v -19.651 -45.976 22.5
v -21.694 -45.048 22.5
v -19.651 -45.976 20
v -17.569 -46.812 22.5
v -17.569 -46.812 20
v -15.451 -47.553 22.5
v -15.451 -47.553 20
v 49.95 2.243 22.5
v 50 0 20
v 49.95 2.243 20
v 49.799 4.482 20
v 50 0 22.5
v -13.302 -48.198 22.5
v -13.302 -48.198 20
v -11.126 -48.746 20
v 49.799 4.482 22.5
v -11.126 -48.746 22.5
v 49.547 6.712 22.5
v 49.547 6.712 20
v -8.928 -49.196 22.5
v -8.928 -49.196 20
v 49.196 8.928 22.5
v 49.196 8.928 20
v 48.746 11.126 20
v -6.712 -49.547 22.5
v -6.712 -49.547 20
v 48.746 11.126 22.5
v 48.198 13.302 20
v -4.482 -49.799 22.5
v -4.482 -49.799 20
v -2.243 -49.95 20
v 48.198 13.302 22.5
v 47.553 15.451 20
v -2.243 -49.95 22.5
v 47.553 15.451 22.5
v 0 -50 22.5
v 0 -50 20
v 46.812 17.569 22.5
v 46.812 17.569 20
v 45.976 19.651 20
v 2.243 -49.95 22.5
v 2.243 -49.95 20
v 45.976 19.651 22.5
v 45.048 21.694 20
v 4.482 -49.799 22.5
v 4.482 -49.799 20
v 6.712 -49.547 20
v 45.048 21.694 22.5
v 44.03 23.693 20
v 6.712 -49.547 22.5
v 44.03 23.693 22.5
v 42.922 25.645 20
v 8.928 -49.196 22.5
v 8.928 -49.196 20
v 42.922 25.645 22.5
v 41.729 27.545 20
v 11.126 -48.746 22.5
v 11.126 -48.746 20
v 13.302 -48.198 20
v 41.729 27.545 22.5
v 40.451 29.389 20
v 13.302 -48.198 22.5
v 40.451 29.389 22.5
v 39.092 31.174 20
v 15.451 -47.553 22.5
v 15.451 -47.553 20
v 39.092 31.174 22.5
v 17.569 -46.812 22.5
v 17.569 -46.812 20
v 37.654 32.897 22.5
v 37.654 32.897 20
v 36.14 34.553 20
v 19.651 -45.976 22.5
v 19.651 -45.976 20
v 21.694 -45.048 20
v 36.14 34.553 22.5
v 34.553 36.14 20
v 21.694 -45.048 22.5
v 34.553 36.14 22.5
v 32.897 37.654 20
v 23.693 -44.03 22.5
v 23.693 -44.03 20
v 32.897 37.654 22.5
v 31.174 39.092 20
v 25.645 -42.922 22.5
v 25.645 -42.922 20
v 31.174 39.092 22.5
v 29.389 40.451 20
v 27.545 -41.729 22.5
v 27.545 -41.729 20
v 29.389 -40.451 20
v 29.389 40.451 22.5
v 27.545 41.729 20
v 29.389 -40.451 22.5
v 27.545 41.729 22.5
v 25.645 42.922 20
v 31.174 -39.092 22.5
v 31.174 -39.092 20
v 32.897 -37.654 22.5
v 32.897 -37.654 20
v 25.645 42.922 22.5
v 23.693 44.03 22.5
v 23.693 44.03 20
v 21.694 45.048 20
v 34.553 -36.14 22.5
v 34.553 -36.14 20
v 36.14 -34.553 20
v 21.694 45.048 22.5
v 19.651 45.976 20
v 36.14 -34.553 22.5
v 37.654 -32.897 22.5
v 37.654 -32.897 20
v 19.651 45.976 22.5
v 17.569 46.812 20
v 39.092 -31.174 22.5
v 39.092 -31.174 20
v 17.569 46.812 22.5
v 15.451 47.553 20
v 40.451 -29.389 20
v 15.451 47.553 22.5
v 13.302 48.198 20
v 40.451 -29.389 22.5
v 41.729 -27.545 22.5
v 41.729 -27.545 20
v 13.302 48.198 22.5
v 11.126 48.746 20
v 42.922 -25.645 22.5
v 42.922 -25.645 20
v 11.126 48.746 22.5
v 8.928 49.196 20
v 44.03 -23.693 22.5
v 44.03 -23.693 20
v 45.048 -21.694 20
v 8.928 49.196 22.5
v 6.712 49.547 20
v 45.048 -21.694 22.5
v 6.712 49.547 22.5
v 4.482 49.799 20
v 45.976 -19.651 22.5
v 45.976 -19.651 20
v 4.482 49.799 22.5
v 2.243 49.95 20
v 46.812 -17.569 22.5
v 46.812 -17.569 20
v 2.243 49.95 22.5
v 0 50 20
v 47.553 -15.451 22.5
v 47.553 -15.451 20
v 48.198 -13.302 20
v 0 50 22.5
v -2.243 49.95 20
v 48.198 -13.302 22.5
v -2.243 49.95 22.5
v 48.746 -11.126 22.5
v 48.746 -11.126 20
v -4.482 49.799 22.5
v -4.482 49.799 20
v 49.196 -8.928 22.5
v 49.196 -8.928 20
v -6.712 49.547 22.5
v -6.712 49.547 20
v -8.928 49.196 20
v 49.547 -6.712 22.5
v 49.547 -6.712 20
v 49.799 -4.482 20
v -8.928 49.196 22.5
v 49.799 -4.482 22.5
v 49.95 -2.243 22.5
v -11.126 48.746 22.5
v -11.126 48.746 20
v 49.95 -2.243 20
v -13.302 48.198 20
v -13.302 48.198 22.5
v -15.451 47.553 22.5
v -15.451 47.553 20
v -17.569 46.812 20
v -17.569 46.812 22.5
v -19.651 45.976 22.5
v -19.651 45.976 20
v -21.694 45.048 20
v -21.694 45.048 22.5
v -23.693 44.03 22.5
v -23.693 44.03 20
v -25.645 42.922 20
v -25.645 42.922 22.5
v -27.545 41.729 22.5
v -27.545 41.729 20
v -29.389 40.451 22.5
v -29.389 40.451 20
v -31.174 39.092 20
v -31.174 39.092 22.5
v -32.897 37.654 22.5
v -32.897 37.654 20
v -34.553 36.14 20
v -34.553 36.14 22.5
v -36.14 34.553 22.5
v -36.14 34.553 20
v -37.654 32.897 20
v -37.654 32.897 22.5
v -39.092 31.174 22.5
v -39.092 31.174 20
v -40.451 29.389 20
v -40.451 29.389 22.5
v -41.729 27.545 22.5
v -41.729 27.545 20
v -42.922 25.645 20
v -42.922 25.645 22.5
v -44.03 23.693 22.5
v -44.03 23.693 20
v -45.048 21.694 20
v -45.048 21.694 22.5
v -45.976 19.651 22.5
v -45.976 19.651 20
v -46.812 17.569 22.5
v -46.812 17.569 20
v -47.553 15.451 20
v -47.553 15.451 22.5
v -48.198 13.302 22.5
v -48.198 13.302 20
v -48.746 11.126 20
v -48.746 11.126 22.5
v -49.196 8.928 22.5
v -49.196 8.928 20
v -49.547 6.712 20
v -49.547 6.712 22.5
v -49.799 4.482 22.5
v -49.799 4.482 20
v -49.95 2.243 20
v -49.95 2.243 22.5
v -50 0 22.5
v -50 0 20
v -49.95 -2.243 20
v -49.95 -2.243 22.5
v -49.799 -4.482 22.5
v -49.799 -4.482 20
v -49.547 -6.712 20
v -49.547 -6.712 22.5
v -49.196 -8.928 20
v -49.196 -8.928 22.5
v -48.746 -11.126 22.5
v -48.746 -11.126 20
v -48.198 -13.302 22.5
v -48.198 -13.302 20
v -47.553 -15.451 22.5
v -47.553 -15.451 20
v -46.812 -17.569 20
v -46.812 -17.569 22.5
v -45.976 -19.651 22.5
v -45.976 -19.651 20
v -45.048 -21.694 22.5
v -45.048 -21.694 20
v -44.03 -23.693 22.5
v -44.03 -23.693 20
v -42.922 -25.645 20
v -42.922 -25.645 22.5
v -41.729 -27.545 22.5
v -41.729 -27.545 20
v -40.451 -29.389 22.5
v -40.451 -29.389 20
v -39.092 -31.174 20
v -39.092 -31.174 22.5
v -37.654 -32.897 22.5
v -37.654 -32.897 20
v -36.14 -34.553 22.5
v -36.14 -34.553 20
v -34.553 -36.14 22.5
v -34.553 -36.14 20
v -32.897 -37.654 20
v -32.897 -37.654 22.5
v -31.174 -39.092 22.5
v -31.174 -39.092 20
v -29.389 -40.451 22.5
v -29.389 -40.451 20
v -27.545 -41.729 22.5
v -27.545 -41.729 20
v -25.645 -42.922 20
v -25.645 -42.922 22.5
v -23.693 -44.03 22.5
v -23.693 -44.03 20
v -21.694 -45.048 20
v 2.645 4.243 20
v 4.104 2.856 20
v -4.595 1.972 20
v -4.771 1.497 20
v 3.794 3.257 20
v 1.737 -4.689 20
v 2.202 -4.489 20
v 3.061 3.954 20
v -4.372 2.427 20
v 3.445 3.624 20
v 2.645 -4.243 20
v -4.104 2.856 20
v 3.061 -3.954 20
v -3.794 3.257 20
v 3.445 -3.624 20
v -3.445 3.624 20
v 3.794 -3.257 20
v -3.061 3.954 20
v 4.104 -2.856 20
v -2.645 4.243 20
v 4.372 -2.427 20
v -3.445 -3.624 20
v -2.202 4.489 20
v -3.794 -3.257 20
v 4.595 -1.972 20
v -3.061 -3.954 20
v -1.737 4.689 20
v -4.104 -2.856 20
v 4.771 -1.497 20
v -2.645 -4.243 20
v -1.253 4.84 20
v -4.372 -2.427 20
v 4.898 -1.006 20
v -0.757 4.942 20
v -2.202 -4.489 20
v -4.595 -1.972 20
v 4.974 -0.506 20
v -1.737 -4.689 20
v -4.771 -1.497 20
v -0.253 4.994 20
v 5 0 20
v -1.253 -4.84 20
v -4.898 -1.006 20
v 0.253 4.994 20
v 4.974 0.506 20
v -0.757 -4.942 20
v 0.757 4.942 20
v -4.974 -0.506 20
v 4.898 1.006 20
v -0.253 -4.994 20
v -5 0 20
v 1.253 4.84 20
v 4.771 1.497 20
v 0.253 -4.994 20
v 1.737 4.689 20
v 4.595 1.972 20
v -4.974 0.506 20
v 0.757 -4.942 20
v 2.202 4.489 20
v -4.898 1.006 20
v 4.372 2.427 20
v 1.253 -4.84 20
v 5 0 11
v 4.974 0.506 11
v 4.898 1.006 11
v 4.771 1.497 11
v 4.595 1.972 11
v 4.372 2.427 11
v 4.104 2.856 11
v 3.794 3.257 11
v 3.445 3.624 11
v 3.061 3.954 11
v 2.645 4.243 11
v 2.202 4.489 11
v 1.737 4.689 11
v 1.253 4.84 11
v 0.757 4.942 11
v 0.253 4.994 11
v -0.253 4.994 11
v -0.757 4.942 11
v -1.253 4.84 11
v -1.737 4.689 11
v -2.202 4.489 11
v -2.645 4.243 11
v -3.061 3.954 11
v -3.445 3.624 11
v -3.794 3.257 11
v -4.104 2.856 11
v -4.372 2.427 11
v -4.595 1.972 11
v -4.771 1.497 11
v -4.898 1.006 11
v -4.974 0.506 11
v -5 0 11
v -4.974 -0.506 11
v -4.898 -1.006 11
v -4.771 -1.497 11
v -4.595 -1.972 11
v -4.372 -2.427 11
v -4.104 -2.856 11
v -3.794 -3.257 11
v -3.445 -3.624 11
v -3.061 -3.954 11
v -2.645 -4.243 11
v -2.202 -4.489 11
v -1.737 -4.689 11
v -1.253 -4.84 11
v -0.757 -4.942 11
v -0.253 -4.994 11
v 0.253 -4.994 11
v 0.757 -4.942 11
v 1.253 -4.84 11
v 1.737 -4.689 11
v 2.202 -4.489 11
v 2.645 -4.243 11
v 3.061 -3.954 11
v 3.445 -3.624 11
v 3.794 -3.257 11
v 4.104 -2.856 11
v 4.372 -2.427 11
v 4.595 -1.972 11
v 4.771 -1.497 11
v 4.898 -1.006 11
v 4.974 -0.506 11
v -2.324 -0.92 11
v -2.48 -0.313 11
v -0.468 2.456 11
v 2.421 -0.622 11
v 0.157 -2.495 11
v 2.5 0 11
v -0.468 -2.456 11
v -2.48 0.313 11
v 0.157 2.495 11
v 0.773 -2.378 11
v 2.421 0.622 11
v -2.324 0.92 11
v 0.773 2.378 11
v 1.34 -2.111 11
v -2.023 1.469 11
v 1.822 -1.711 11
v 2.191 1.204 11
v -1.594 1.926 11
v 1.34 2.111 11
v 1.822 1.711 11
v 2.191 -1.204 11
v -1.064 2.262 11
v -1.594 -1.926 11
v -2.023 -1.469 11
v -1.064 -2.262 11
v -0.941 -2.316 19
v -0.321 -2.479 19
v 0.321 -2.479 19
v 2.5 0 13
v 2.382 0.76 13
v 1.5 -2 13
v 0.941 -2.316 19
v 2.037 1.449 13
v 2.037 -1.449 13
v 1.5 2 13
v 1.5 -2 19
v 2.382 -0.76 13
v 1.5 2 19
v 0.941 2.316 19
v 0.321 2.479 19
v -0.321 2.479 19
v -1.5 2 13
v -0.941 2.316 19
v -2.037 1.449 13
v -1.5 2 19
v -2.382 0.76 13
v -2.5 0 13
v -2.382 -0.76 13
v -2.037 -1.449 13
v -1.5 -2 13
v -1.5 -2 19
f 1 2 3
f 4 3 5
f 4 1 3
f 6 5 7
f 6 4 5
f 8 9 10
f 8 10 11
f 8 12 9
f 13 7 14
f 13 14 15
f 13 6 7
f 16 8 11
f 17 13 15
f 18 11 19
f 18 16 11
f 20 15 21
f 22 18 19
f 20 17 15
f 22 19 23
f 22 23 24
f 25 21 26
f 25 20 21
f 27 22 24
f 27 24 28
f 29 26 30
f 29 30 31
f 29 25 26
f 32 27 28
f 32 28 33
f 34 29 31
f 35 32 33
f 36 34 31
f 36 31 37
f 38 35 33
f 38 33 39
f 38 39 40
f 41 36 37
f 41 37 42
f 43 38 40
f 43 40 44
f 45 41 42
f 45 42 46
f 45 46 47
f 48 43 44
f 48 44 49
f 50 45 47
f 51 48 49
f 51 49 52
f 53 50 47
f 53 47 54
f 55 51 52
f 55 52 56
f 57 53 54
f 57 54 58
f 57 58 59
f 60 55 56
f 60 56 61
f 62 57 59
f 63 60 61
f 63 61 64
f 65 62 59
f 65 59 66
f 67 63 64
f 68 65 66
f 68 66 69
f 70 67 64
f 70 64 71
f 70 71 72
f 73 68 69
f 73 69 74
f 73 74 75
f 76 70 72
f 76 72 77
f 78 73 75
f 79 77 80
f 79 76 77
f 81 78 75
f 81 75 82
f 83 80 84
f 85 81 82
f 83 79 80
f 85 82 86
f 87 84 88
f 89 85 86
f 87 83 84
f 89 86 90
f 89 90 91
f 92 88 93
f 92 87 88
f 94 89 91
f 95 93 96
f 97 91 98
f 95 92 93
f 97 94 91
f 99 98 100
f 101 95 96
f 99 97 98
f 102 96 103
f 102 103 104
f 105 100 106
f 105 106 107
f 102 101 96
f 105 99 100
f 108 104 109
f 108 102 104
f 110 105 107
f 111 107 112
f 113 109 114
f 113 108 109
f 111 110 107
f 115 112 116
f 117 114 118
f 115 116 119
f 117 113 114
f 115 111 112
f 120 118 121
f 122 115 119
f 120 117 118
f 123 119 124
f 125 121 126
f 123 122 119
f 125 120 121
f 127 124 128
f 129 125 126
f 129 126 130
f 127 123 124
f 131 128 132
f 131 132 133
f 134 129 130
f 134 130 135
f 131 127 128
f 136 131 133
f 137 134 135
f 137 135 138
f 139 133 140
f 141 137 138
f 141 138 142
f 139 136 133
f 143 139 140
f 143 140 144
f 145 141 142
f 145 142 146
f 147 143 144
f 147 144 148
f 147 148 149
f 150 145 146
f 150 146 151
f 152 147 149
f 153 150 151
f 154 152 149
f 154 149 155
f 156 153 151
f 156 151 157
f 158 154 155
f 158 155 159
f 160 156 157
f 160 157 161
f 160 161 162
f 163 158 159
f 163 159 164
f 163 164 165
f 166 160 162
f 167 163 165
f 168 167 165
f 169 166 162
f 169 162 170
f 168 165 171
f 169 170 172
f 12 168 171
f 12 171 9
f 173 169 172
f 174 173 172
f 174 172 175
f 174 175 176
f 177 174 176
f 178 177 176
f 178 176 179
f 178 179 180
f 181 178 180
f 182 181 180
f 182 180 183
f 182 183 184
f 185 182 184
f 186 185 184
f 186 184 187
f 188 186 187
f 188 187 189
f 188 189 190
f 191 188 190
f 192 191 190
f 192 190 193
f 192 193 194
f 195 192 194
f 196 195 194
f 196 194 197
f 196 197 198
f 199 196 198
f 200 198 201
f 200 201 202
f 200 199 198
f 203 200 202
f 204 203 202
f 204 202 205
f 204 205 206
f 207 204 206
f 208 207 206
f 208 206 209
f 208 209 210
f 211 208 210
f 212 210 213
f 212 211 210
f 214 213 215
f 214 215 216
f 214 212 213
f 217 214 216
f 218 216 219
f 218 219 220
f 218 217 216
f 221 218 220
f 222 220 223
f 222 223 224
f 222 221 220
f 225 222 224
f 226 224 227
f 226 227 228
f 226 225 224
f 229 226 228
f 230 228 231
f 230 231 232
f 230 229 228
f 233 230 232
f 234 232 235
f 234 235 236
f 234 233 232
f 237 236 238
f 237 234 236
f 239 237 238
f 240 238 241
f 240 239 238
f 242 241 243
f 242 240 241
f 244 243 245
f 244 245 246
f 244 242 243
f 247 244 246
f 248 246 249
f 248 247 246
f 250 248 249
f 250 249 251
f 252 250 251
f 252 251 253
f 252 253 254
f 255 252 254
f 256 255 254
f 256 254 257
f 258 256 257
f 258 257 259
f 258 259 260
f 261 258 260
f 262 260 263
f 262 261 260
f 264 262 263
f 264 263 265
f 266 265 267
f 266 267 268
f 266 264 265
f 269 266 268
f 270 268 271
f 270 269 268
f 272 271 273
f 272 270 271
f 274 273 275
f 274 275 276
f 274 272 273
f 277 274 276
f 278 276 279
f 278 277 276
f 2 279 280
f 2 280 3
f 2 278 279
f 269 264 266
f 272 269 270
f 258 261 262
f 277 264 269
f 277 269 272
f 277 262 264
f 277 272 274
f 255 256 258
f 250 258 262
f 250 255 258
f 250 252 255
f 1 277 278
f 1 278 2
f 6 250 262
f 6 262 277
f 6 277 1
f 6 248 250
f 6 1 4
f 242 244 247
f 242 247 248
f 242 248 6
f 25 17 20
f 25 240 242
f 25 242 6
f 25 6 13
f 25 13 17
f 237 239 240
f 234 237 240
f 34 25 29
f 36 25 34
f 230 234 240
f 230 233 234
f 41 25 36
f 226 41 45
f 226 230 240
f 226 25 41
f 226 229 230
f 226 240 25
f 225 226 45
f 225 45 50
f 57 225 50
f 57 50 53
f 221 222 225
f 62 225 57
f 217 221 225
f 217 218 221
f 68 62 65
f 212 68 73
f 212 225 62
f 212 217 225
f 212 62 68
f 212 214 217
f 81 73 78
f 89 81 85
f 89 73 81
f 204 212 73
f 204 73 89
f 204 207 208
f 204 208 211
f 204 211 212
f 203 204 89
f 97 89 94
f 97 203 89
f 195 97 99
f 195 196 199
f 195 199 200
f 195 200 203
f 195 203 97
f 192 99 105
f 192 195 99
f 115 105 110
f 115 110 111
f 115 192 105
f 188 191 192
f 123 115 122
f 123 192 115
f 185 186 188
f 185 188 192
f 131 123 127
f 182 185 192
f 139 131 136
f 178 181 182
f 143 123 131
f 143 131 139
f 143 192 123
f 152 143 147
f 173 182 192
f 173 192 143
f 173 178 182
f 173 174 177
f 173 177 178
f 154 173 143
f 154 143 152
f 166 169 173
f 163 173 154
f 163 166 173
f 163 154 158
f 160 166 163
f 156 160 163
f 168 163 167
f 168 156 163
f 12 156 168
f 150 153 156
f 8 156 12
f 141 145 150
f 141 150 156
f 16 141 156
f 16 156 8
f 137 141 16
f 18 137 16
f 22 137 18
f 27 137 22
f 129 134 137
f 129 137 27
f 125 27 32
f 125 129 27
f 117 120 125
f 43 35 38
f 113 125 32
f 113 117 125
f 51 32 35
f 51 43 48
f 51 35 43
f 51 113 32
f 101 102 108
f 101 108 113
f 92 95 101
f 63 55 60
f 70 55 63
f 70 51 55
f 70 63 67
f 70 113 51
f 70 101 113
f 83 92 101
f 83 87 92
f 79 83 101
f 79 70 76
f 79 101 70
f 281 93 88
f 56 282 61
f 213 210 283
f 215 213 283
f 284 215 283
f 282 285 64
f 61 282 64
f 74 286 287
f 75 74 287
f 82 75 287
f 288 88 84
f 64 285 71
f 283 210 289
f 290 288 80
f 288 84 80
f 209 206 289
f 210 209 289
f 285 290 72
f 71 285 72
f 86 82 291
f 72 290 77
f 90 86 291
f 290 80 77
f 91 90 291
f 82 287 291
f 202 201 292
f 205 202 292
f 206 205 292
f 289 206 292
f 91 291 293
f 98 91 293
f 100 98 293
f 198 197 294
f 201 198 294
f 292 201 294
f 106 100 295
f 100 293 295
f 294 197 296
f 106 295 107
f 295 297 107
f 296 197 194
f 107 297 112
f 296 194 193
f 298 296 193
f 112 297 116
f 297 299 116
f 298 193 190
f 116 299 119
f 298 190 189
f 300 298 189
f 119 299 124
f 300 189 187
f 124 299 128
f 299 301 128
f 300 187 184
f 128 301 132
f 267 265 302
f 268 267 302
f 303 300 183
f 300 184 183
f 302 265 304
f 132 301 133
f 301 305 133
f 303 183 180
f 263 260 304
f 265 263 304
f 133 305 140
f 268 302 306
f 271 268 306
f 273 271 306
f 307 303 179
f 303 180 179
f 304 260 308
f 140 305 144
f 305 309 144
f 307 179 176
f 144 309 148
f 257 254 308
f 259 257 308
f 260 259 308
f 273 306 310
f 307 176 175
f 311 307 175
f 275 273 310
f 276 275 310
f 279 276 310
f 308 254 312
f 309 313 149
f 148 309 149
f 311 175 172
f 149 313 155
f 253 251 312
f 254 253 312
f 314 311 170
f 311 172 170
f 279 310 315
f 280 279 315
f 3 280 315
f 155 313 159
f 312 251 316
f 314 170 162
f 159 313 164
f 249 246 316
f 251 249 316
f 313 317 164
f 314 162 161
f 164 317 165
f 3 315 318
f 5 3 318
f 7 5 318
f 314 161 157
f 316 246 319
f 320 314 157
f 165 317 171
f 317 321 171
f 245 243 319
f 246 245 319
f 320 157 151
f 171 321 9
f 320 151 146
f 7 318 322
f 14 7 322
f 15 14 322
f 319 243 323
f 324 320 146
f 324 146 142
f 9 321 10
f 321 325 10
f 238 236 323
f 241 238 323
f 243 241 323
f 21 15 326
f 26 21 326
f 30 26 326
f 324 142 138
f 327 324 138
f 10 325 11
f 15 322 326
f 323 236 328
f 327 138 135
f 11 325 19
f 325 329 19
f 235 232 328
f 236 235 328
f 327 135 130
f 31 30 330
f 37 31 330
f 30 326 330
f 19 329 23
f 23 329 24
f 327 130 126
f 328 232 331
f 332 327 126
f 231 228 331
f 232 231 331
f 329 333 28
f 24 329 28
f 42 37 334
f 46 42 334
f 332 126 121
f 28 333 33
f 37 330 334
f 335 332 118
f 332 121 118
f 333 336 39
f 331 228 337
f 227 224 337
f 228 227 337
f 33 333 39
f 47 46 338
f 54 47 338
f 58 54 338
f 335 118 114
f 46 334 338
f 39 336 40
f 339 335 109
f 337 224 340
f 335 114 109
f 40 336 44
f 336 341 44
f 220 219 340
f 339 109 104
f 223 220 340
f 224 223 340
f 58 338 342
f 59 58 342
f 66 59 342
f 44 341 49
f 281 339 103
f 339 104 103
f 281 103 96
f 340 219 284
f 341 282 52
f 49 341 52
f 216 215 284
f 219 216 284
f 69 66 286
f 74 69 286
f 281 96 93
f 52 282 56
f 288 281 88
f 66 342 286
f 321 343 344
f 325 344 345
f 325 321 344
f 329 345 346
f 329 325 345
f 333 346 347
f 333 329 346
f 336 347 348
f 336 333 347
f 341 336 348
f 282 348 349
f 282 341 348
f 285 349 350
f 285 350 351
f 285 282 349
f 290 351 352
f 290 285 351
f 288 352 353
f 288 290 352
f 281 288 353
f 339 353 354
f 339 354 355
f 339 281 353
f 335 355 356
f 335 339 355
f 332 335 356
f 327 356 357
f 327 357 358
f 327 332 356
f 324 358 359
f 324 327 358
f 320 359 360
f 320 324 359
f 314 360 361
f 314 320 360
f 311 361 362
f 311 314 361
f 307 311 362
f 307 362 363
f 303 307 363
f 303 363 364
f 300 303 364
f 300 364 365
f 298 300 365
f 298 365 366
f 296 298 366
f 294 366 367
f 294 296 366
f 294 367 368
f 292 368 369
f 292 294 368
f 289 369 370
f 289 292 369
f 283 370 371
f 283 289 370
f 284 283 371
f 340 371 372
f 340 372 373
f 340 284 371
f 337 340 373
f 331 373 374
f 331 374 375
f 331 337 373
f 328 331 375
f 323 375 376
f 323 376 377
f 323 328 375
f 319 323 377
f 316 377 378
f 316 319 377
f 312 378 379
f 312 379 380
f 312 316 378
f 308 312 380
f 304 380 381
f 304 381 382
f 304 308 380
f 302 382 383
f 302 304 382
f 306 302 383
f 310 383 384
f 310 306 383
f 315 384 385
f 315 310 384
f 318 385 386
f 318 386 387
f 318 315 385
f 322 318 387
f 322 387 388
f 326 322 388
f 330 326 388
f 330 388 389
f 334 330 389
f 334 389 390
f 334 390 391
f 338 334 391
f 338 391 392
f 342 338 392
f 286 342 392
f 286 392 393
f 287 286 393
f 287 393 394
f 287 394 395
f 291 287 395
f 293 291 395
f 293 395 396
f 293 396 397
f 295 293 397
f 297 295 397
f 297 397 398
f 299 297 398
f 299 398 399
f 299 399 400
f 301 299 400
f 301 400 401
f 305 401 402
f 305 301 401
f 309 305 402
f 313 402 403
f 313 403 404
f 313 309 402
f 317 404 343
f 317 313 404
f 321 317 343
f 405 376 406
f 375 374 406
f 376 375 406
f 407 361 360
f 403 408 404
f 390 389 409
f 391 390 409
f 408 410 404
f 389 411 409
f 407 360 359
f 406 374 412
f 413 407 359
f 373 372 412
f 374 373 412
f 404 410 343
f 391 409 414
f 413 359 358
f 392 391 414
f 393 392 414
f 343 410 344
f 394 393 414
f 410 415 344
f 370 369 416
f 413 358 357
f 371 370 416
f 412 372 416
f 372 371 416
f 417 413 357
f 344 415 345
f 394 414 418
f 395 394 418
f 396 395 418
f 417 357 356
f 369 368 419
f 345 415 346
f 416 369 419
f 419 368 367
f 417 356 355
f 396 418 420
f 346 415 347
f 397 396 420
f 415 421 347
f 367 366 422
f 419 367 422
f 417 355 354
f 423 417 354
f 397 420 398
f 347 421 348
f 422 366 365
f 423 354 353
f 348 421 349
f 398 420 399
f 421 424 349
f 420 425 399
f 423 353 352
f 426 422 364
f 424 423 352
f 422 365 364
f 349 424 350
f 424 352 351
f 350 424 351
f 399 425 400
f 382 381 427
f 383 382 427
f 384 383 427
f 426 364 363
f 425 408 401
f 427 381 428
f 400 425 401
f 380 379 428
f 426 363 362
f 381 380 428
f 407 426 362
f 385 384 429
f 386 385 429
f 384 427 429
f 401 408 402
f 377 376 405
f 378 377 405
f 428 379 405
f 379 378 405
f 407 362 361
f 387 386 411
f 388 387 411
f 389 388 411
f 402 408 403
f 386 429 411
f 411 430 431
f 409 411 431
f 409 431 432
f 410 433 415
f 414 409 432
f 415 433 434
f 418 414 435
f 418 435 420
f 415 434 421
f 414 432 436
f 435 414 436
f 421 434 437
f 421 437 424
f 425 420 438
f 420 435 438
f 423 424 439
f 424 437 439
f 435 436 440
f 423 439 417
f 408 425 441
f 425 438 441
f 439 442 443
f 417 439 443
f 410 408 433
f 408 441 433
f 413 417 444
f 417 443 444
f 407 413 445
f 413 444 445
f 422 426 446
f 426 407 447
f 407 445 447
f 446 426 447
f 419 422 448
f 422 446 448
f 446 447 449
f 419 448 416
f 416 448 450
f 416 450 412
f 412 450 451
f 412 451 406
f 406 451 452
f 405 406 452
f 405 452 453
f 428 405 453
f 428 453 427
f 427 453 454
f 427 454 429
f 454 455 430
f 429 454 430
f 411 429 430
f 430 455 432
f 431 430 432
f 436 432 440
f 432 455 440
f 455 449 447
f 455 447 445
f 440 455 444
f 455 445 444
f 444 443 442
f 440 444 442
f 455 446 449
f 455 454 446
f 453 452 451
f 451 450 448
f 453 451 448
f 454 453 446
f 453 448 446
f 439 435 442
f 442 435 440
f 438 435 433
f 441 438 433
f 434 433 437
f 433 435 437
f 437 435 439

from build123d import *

# Parameters (mm, degrees)
BOX012_W          = 17
BOX012_H          = 14.6
BOX012_DEPTH      = 16.5
CYLINDER025_R     = 2.1
CYLINDER025_DEPTH = 2
CYLINDER024_R     = 2.1
CYLINDER024_DEPTH = 2
CYLINDER027_R     = 3.5
CYLINDER027_DEPTH = 0.75
BOX011_W          = 7
BOX011_H          = 35
BOX011_DEPTH      = 0.75
CYLINDER026_R     = 3.5
CYLINDER026_DEPTH = 0.75
CYLINDER022_R     = 4.5
CYLINDER022_DEPTH = 1.5
CYLINDER021_R     = 14
CYLINDER021_DEPTH = 19
BOX014_W          = 1
BOX014_H          = 5
BOX014_DEPTH      = 6
BOX013_W          = 1
BOX013_H          = 5
BOX013_DEPTH      = 6
CYLINDER023_R     = 2.5
CYLINDER023_DEPTH = 8.5
CYLINDER020_R     = 5
CYLINDER020_DEPTH = 9
CYLINDER019_R     = 50
CYLINDER019_DEPTH = 2.5


with BuildPart() as cube012:
    # Box012 → Box012 (new body)
    with BuildSketch(Plane(origin=(0, -7.3, 2.5), x_dir=(1, 0, 0), z_dir=(0, 0, 1))):
        with Locations((8.5, 7.3)):
            Rectangle(BOX012_W, BOX012_H)
    extrude(amount=BOX012_DEPTH)


with BuildPart() as cylinder025:
    # Cylinder025 → Cylinder025 (new body)
    with BuildSketch(Plane(origin=(0, 17.5, 18), x_dir=(1, 0, 0), z_dir=(0, 0, 1))):
        Circle(CYLINDER025_R)
    extrude(amount=CYLINDER025_DEPTH)


with BuildPart() as cylinder024:
    # Cylinder024 → Cylinder024 (new body)
    with BuildSketch(Plane(origin=(0, -17.5, 18), x_dir=(1, 0, 0), z_dir=(0, 0, 1))):
        Circle(CYLINDER024_R)
    extrude(amount=CYLINDER024_DEPTH)


with BuildPart() as cylinder027:
    # Cylinder027 → Cylinder027 (new body)
    with BuildSketch(Plane(origin=(0, 17.5, 18), x_dir=(1, 0, 0), z_dir=(0, 0, 1))):
        Circle(CYLINDER027_R)
    extrude(amount=CYLINDER027_DEPTH)


with BuildPart() as cube011:
    # Box011 → Box011 (new body)
    with BuildSketch(Plane(origin=(-3.5, -17.5, 18), x_dir=(1, 0, 0), z_dir=(0, 0, 1))):
        with Locations((3.5, 17.5)):
            Rectangle(BOX011_W, BOX011_H)
    extrude(amount=BOX011_DEPTH)


with BuildPart() as cut010:
    # Cylinder026 → Cylinder026 (new body)
    with BuildSketch(Plane(origin=(0, -17.5, 18), x_dir=(1, 0, 0), z_dir=(0, 0, 1))):
        Circle(CYLINDER026_R)
    extrude(amount=CYLINDER026_DEPTH)

    # Fusion005: union Cylinder027, Cube011
    add(cylinder027.part)
    add(cube011.part)


with BuildPart() as cut010_1:
    # Fusion005 placement: moved
    add(cut010.part.moved(Location((0, 0, 0.25))))

    # Cut009: cut Cylinder024
    add(cylinder024.part, mode=Mode.SUBTRACT)

    # Cut010: cut Cylinder025
    add(cylinder025.part, mode=Mode.SUBTRACT)


with BuildPart() as cylinder022:
    # Cylinder022 → Cylinder022 (new body)
    with BuildSketch(Plane(origin=(-8, 0, 19), x_dir=(1, 0, 0), z_dir=(0, 0, 1))):
        Circle(CYLINDER022_R)
    extrude(amount=CYLINDER022_DEPTH)


with BuildPart() as cylinder021:
    # Cylinder021 → Cylinder021 (new body)
    with BuildSketch(Plane.XY):
        Circle(CYLINDER021_R)
    extrude(amount=CYLINDER021_DEPTH)


with BuildPart() as cube014:
    # Box014 → Box014 (new body)
    with BuildSketch(Plane(origin=(-10.5, -2.5, 23), x_dir=(1, 0, 0), z_dir=(0, 0, 1))):
        with Locations((0.5, 2.5)):
            Rectangle(BOX014_W, BOX014_H)
    extrude(amount=BOX014_DEPTH)


with BuildPart() as cube013:
    # Box013 → Box013 (new body)
    with BuildSketch(Plane(origin=(-6.5, -2.5, 23), x_dir=(1, 0, 0), z_dir=(0, 0, 1))):
        with Locations((0.5, 2.5)):
            Rectangle(BOX013_W, BOX013_H)
    extrude(amount=BOX013_DEPTH)


with BuildPart() as fusion006:
    # Cylinder023 → Cylinder023 (new body)
    with BuildSketch(Plane(origin=(-8, 0, 20.5), x_dir=(1, 0, 0), z_dir=(0, 0, 1))):
        Circle(CYLINDER023_R)
    extrude(amount=CYLINDER023_DEPTH)

    # Cut011: cut Cube013
    add(cube013.part, mode=Mode.SUBTRACT)

    # Cut012: cut Cube014
    add(cube014.part, mode=Mode.SUBTRACT)

    # Fusion006: union Cube012, Cut010, Cylinder022, Cylinder021
    add(cube012.part)
    add(cut010_1.part)
    add(cylinder022.part)
    add(cylinder021.part)


with BuildPart() as fusion006_1:
    # Fusion006 placement: moved
    add(fusion006.part.moved(Location((8, 0, -10))))


with BuildPart() as cut013:
    # Cylinder020 → Cylinder020 (new body)
    with BuildSketch(Plane.XY.offset(11)):
        Circle(CYLINDER020_R)
    extrude(amount=CYLINDER020_DEPTH)

    # Cut013: cut Fusion006
    add(fusion006_1.part, mode=Mode.SUBTRACT)


with BuildPart() as bottom_plate:
    # Cylinder019 → Cylinder019 (new body)
    with BuildSketch(Plane.XY.offset(20)):
        Circle(CYLINDER019_R)
    extrude(amount=CYLINDER019_DEPTH)

    # Fusion007: union Cut013
    add(cut013.part)


solid = bottom_plate.part
